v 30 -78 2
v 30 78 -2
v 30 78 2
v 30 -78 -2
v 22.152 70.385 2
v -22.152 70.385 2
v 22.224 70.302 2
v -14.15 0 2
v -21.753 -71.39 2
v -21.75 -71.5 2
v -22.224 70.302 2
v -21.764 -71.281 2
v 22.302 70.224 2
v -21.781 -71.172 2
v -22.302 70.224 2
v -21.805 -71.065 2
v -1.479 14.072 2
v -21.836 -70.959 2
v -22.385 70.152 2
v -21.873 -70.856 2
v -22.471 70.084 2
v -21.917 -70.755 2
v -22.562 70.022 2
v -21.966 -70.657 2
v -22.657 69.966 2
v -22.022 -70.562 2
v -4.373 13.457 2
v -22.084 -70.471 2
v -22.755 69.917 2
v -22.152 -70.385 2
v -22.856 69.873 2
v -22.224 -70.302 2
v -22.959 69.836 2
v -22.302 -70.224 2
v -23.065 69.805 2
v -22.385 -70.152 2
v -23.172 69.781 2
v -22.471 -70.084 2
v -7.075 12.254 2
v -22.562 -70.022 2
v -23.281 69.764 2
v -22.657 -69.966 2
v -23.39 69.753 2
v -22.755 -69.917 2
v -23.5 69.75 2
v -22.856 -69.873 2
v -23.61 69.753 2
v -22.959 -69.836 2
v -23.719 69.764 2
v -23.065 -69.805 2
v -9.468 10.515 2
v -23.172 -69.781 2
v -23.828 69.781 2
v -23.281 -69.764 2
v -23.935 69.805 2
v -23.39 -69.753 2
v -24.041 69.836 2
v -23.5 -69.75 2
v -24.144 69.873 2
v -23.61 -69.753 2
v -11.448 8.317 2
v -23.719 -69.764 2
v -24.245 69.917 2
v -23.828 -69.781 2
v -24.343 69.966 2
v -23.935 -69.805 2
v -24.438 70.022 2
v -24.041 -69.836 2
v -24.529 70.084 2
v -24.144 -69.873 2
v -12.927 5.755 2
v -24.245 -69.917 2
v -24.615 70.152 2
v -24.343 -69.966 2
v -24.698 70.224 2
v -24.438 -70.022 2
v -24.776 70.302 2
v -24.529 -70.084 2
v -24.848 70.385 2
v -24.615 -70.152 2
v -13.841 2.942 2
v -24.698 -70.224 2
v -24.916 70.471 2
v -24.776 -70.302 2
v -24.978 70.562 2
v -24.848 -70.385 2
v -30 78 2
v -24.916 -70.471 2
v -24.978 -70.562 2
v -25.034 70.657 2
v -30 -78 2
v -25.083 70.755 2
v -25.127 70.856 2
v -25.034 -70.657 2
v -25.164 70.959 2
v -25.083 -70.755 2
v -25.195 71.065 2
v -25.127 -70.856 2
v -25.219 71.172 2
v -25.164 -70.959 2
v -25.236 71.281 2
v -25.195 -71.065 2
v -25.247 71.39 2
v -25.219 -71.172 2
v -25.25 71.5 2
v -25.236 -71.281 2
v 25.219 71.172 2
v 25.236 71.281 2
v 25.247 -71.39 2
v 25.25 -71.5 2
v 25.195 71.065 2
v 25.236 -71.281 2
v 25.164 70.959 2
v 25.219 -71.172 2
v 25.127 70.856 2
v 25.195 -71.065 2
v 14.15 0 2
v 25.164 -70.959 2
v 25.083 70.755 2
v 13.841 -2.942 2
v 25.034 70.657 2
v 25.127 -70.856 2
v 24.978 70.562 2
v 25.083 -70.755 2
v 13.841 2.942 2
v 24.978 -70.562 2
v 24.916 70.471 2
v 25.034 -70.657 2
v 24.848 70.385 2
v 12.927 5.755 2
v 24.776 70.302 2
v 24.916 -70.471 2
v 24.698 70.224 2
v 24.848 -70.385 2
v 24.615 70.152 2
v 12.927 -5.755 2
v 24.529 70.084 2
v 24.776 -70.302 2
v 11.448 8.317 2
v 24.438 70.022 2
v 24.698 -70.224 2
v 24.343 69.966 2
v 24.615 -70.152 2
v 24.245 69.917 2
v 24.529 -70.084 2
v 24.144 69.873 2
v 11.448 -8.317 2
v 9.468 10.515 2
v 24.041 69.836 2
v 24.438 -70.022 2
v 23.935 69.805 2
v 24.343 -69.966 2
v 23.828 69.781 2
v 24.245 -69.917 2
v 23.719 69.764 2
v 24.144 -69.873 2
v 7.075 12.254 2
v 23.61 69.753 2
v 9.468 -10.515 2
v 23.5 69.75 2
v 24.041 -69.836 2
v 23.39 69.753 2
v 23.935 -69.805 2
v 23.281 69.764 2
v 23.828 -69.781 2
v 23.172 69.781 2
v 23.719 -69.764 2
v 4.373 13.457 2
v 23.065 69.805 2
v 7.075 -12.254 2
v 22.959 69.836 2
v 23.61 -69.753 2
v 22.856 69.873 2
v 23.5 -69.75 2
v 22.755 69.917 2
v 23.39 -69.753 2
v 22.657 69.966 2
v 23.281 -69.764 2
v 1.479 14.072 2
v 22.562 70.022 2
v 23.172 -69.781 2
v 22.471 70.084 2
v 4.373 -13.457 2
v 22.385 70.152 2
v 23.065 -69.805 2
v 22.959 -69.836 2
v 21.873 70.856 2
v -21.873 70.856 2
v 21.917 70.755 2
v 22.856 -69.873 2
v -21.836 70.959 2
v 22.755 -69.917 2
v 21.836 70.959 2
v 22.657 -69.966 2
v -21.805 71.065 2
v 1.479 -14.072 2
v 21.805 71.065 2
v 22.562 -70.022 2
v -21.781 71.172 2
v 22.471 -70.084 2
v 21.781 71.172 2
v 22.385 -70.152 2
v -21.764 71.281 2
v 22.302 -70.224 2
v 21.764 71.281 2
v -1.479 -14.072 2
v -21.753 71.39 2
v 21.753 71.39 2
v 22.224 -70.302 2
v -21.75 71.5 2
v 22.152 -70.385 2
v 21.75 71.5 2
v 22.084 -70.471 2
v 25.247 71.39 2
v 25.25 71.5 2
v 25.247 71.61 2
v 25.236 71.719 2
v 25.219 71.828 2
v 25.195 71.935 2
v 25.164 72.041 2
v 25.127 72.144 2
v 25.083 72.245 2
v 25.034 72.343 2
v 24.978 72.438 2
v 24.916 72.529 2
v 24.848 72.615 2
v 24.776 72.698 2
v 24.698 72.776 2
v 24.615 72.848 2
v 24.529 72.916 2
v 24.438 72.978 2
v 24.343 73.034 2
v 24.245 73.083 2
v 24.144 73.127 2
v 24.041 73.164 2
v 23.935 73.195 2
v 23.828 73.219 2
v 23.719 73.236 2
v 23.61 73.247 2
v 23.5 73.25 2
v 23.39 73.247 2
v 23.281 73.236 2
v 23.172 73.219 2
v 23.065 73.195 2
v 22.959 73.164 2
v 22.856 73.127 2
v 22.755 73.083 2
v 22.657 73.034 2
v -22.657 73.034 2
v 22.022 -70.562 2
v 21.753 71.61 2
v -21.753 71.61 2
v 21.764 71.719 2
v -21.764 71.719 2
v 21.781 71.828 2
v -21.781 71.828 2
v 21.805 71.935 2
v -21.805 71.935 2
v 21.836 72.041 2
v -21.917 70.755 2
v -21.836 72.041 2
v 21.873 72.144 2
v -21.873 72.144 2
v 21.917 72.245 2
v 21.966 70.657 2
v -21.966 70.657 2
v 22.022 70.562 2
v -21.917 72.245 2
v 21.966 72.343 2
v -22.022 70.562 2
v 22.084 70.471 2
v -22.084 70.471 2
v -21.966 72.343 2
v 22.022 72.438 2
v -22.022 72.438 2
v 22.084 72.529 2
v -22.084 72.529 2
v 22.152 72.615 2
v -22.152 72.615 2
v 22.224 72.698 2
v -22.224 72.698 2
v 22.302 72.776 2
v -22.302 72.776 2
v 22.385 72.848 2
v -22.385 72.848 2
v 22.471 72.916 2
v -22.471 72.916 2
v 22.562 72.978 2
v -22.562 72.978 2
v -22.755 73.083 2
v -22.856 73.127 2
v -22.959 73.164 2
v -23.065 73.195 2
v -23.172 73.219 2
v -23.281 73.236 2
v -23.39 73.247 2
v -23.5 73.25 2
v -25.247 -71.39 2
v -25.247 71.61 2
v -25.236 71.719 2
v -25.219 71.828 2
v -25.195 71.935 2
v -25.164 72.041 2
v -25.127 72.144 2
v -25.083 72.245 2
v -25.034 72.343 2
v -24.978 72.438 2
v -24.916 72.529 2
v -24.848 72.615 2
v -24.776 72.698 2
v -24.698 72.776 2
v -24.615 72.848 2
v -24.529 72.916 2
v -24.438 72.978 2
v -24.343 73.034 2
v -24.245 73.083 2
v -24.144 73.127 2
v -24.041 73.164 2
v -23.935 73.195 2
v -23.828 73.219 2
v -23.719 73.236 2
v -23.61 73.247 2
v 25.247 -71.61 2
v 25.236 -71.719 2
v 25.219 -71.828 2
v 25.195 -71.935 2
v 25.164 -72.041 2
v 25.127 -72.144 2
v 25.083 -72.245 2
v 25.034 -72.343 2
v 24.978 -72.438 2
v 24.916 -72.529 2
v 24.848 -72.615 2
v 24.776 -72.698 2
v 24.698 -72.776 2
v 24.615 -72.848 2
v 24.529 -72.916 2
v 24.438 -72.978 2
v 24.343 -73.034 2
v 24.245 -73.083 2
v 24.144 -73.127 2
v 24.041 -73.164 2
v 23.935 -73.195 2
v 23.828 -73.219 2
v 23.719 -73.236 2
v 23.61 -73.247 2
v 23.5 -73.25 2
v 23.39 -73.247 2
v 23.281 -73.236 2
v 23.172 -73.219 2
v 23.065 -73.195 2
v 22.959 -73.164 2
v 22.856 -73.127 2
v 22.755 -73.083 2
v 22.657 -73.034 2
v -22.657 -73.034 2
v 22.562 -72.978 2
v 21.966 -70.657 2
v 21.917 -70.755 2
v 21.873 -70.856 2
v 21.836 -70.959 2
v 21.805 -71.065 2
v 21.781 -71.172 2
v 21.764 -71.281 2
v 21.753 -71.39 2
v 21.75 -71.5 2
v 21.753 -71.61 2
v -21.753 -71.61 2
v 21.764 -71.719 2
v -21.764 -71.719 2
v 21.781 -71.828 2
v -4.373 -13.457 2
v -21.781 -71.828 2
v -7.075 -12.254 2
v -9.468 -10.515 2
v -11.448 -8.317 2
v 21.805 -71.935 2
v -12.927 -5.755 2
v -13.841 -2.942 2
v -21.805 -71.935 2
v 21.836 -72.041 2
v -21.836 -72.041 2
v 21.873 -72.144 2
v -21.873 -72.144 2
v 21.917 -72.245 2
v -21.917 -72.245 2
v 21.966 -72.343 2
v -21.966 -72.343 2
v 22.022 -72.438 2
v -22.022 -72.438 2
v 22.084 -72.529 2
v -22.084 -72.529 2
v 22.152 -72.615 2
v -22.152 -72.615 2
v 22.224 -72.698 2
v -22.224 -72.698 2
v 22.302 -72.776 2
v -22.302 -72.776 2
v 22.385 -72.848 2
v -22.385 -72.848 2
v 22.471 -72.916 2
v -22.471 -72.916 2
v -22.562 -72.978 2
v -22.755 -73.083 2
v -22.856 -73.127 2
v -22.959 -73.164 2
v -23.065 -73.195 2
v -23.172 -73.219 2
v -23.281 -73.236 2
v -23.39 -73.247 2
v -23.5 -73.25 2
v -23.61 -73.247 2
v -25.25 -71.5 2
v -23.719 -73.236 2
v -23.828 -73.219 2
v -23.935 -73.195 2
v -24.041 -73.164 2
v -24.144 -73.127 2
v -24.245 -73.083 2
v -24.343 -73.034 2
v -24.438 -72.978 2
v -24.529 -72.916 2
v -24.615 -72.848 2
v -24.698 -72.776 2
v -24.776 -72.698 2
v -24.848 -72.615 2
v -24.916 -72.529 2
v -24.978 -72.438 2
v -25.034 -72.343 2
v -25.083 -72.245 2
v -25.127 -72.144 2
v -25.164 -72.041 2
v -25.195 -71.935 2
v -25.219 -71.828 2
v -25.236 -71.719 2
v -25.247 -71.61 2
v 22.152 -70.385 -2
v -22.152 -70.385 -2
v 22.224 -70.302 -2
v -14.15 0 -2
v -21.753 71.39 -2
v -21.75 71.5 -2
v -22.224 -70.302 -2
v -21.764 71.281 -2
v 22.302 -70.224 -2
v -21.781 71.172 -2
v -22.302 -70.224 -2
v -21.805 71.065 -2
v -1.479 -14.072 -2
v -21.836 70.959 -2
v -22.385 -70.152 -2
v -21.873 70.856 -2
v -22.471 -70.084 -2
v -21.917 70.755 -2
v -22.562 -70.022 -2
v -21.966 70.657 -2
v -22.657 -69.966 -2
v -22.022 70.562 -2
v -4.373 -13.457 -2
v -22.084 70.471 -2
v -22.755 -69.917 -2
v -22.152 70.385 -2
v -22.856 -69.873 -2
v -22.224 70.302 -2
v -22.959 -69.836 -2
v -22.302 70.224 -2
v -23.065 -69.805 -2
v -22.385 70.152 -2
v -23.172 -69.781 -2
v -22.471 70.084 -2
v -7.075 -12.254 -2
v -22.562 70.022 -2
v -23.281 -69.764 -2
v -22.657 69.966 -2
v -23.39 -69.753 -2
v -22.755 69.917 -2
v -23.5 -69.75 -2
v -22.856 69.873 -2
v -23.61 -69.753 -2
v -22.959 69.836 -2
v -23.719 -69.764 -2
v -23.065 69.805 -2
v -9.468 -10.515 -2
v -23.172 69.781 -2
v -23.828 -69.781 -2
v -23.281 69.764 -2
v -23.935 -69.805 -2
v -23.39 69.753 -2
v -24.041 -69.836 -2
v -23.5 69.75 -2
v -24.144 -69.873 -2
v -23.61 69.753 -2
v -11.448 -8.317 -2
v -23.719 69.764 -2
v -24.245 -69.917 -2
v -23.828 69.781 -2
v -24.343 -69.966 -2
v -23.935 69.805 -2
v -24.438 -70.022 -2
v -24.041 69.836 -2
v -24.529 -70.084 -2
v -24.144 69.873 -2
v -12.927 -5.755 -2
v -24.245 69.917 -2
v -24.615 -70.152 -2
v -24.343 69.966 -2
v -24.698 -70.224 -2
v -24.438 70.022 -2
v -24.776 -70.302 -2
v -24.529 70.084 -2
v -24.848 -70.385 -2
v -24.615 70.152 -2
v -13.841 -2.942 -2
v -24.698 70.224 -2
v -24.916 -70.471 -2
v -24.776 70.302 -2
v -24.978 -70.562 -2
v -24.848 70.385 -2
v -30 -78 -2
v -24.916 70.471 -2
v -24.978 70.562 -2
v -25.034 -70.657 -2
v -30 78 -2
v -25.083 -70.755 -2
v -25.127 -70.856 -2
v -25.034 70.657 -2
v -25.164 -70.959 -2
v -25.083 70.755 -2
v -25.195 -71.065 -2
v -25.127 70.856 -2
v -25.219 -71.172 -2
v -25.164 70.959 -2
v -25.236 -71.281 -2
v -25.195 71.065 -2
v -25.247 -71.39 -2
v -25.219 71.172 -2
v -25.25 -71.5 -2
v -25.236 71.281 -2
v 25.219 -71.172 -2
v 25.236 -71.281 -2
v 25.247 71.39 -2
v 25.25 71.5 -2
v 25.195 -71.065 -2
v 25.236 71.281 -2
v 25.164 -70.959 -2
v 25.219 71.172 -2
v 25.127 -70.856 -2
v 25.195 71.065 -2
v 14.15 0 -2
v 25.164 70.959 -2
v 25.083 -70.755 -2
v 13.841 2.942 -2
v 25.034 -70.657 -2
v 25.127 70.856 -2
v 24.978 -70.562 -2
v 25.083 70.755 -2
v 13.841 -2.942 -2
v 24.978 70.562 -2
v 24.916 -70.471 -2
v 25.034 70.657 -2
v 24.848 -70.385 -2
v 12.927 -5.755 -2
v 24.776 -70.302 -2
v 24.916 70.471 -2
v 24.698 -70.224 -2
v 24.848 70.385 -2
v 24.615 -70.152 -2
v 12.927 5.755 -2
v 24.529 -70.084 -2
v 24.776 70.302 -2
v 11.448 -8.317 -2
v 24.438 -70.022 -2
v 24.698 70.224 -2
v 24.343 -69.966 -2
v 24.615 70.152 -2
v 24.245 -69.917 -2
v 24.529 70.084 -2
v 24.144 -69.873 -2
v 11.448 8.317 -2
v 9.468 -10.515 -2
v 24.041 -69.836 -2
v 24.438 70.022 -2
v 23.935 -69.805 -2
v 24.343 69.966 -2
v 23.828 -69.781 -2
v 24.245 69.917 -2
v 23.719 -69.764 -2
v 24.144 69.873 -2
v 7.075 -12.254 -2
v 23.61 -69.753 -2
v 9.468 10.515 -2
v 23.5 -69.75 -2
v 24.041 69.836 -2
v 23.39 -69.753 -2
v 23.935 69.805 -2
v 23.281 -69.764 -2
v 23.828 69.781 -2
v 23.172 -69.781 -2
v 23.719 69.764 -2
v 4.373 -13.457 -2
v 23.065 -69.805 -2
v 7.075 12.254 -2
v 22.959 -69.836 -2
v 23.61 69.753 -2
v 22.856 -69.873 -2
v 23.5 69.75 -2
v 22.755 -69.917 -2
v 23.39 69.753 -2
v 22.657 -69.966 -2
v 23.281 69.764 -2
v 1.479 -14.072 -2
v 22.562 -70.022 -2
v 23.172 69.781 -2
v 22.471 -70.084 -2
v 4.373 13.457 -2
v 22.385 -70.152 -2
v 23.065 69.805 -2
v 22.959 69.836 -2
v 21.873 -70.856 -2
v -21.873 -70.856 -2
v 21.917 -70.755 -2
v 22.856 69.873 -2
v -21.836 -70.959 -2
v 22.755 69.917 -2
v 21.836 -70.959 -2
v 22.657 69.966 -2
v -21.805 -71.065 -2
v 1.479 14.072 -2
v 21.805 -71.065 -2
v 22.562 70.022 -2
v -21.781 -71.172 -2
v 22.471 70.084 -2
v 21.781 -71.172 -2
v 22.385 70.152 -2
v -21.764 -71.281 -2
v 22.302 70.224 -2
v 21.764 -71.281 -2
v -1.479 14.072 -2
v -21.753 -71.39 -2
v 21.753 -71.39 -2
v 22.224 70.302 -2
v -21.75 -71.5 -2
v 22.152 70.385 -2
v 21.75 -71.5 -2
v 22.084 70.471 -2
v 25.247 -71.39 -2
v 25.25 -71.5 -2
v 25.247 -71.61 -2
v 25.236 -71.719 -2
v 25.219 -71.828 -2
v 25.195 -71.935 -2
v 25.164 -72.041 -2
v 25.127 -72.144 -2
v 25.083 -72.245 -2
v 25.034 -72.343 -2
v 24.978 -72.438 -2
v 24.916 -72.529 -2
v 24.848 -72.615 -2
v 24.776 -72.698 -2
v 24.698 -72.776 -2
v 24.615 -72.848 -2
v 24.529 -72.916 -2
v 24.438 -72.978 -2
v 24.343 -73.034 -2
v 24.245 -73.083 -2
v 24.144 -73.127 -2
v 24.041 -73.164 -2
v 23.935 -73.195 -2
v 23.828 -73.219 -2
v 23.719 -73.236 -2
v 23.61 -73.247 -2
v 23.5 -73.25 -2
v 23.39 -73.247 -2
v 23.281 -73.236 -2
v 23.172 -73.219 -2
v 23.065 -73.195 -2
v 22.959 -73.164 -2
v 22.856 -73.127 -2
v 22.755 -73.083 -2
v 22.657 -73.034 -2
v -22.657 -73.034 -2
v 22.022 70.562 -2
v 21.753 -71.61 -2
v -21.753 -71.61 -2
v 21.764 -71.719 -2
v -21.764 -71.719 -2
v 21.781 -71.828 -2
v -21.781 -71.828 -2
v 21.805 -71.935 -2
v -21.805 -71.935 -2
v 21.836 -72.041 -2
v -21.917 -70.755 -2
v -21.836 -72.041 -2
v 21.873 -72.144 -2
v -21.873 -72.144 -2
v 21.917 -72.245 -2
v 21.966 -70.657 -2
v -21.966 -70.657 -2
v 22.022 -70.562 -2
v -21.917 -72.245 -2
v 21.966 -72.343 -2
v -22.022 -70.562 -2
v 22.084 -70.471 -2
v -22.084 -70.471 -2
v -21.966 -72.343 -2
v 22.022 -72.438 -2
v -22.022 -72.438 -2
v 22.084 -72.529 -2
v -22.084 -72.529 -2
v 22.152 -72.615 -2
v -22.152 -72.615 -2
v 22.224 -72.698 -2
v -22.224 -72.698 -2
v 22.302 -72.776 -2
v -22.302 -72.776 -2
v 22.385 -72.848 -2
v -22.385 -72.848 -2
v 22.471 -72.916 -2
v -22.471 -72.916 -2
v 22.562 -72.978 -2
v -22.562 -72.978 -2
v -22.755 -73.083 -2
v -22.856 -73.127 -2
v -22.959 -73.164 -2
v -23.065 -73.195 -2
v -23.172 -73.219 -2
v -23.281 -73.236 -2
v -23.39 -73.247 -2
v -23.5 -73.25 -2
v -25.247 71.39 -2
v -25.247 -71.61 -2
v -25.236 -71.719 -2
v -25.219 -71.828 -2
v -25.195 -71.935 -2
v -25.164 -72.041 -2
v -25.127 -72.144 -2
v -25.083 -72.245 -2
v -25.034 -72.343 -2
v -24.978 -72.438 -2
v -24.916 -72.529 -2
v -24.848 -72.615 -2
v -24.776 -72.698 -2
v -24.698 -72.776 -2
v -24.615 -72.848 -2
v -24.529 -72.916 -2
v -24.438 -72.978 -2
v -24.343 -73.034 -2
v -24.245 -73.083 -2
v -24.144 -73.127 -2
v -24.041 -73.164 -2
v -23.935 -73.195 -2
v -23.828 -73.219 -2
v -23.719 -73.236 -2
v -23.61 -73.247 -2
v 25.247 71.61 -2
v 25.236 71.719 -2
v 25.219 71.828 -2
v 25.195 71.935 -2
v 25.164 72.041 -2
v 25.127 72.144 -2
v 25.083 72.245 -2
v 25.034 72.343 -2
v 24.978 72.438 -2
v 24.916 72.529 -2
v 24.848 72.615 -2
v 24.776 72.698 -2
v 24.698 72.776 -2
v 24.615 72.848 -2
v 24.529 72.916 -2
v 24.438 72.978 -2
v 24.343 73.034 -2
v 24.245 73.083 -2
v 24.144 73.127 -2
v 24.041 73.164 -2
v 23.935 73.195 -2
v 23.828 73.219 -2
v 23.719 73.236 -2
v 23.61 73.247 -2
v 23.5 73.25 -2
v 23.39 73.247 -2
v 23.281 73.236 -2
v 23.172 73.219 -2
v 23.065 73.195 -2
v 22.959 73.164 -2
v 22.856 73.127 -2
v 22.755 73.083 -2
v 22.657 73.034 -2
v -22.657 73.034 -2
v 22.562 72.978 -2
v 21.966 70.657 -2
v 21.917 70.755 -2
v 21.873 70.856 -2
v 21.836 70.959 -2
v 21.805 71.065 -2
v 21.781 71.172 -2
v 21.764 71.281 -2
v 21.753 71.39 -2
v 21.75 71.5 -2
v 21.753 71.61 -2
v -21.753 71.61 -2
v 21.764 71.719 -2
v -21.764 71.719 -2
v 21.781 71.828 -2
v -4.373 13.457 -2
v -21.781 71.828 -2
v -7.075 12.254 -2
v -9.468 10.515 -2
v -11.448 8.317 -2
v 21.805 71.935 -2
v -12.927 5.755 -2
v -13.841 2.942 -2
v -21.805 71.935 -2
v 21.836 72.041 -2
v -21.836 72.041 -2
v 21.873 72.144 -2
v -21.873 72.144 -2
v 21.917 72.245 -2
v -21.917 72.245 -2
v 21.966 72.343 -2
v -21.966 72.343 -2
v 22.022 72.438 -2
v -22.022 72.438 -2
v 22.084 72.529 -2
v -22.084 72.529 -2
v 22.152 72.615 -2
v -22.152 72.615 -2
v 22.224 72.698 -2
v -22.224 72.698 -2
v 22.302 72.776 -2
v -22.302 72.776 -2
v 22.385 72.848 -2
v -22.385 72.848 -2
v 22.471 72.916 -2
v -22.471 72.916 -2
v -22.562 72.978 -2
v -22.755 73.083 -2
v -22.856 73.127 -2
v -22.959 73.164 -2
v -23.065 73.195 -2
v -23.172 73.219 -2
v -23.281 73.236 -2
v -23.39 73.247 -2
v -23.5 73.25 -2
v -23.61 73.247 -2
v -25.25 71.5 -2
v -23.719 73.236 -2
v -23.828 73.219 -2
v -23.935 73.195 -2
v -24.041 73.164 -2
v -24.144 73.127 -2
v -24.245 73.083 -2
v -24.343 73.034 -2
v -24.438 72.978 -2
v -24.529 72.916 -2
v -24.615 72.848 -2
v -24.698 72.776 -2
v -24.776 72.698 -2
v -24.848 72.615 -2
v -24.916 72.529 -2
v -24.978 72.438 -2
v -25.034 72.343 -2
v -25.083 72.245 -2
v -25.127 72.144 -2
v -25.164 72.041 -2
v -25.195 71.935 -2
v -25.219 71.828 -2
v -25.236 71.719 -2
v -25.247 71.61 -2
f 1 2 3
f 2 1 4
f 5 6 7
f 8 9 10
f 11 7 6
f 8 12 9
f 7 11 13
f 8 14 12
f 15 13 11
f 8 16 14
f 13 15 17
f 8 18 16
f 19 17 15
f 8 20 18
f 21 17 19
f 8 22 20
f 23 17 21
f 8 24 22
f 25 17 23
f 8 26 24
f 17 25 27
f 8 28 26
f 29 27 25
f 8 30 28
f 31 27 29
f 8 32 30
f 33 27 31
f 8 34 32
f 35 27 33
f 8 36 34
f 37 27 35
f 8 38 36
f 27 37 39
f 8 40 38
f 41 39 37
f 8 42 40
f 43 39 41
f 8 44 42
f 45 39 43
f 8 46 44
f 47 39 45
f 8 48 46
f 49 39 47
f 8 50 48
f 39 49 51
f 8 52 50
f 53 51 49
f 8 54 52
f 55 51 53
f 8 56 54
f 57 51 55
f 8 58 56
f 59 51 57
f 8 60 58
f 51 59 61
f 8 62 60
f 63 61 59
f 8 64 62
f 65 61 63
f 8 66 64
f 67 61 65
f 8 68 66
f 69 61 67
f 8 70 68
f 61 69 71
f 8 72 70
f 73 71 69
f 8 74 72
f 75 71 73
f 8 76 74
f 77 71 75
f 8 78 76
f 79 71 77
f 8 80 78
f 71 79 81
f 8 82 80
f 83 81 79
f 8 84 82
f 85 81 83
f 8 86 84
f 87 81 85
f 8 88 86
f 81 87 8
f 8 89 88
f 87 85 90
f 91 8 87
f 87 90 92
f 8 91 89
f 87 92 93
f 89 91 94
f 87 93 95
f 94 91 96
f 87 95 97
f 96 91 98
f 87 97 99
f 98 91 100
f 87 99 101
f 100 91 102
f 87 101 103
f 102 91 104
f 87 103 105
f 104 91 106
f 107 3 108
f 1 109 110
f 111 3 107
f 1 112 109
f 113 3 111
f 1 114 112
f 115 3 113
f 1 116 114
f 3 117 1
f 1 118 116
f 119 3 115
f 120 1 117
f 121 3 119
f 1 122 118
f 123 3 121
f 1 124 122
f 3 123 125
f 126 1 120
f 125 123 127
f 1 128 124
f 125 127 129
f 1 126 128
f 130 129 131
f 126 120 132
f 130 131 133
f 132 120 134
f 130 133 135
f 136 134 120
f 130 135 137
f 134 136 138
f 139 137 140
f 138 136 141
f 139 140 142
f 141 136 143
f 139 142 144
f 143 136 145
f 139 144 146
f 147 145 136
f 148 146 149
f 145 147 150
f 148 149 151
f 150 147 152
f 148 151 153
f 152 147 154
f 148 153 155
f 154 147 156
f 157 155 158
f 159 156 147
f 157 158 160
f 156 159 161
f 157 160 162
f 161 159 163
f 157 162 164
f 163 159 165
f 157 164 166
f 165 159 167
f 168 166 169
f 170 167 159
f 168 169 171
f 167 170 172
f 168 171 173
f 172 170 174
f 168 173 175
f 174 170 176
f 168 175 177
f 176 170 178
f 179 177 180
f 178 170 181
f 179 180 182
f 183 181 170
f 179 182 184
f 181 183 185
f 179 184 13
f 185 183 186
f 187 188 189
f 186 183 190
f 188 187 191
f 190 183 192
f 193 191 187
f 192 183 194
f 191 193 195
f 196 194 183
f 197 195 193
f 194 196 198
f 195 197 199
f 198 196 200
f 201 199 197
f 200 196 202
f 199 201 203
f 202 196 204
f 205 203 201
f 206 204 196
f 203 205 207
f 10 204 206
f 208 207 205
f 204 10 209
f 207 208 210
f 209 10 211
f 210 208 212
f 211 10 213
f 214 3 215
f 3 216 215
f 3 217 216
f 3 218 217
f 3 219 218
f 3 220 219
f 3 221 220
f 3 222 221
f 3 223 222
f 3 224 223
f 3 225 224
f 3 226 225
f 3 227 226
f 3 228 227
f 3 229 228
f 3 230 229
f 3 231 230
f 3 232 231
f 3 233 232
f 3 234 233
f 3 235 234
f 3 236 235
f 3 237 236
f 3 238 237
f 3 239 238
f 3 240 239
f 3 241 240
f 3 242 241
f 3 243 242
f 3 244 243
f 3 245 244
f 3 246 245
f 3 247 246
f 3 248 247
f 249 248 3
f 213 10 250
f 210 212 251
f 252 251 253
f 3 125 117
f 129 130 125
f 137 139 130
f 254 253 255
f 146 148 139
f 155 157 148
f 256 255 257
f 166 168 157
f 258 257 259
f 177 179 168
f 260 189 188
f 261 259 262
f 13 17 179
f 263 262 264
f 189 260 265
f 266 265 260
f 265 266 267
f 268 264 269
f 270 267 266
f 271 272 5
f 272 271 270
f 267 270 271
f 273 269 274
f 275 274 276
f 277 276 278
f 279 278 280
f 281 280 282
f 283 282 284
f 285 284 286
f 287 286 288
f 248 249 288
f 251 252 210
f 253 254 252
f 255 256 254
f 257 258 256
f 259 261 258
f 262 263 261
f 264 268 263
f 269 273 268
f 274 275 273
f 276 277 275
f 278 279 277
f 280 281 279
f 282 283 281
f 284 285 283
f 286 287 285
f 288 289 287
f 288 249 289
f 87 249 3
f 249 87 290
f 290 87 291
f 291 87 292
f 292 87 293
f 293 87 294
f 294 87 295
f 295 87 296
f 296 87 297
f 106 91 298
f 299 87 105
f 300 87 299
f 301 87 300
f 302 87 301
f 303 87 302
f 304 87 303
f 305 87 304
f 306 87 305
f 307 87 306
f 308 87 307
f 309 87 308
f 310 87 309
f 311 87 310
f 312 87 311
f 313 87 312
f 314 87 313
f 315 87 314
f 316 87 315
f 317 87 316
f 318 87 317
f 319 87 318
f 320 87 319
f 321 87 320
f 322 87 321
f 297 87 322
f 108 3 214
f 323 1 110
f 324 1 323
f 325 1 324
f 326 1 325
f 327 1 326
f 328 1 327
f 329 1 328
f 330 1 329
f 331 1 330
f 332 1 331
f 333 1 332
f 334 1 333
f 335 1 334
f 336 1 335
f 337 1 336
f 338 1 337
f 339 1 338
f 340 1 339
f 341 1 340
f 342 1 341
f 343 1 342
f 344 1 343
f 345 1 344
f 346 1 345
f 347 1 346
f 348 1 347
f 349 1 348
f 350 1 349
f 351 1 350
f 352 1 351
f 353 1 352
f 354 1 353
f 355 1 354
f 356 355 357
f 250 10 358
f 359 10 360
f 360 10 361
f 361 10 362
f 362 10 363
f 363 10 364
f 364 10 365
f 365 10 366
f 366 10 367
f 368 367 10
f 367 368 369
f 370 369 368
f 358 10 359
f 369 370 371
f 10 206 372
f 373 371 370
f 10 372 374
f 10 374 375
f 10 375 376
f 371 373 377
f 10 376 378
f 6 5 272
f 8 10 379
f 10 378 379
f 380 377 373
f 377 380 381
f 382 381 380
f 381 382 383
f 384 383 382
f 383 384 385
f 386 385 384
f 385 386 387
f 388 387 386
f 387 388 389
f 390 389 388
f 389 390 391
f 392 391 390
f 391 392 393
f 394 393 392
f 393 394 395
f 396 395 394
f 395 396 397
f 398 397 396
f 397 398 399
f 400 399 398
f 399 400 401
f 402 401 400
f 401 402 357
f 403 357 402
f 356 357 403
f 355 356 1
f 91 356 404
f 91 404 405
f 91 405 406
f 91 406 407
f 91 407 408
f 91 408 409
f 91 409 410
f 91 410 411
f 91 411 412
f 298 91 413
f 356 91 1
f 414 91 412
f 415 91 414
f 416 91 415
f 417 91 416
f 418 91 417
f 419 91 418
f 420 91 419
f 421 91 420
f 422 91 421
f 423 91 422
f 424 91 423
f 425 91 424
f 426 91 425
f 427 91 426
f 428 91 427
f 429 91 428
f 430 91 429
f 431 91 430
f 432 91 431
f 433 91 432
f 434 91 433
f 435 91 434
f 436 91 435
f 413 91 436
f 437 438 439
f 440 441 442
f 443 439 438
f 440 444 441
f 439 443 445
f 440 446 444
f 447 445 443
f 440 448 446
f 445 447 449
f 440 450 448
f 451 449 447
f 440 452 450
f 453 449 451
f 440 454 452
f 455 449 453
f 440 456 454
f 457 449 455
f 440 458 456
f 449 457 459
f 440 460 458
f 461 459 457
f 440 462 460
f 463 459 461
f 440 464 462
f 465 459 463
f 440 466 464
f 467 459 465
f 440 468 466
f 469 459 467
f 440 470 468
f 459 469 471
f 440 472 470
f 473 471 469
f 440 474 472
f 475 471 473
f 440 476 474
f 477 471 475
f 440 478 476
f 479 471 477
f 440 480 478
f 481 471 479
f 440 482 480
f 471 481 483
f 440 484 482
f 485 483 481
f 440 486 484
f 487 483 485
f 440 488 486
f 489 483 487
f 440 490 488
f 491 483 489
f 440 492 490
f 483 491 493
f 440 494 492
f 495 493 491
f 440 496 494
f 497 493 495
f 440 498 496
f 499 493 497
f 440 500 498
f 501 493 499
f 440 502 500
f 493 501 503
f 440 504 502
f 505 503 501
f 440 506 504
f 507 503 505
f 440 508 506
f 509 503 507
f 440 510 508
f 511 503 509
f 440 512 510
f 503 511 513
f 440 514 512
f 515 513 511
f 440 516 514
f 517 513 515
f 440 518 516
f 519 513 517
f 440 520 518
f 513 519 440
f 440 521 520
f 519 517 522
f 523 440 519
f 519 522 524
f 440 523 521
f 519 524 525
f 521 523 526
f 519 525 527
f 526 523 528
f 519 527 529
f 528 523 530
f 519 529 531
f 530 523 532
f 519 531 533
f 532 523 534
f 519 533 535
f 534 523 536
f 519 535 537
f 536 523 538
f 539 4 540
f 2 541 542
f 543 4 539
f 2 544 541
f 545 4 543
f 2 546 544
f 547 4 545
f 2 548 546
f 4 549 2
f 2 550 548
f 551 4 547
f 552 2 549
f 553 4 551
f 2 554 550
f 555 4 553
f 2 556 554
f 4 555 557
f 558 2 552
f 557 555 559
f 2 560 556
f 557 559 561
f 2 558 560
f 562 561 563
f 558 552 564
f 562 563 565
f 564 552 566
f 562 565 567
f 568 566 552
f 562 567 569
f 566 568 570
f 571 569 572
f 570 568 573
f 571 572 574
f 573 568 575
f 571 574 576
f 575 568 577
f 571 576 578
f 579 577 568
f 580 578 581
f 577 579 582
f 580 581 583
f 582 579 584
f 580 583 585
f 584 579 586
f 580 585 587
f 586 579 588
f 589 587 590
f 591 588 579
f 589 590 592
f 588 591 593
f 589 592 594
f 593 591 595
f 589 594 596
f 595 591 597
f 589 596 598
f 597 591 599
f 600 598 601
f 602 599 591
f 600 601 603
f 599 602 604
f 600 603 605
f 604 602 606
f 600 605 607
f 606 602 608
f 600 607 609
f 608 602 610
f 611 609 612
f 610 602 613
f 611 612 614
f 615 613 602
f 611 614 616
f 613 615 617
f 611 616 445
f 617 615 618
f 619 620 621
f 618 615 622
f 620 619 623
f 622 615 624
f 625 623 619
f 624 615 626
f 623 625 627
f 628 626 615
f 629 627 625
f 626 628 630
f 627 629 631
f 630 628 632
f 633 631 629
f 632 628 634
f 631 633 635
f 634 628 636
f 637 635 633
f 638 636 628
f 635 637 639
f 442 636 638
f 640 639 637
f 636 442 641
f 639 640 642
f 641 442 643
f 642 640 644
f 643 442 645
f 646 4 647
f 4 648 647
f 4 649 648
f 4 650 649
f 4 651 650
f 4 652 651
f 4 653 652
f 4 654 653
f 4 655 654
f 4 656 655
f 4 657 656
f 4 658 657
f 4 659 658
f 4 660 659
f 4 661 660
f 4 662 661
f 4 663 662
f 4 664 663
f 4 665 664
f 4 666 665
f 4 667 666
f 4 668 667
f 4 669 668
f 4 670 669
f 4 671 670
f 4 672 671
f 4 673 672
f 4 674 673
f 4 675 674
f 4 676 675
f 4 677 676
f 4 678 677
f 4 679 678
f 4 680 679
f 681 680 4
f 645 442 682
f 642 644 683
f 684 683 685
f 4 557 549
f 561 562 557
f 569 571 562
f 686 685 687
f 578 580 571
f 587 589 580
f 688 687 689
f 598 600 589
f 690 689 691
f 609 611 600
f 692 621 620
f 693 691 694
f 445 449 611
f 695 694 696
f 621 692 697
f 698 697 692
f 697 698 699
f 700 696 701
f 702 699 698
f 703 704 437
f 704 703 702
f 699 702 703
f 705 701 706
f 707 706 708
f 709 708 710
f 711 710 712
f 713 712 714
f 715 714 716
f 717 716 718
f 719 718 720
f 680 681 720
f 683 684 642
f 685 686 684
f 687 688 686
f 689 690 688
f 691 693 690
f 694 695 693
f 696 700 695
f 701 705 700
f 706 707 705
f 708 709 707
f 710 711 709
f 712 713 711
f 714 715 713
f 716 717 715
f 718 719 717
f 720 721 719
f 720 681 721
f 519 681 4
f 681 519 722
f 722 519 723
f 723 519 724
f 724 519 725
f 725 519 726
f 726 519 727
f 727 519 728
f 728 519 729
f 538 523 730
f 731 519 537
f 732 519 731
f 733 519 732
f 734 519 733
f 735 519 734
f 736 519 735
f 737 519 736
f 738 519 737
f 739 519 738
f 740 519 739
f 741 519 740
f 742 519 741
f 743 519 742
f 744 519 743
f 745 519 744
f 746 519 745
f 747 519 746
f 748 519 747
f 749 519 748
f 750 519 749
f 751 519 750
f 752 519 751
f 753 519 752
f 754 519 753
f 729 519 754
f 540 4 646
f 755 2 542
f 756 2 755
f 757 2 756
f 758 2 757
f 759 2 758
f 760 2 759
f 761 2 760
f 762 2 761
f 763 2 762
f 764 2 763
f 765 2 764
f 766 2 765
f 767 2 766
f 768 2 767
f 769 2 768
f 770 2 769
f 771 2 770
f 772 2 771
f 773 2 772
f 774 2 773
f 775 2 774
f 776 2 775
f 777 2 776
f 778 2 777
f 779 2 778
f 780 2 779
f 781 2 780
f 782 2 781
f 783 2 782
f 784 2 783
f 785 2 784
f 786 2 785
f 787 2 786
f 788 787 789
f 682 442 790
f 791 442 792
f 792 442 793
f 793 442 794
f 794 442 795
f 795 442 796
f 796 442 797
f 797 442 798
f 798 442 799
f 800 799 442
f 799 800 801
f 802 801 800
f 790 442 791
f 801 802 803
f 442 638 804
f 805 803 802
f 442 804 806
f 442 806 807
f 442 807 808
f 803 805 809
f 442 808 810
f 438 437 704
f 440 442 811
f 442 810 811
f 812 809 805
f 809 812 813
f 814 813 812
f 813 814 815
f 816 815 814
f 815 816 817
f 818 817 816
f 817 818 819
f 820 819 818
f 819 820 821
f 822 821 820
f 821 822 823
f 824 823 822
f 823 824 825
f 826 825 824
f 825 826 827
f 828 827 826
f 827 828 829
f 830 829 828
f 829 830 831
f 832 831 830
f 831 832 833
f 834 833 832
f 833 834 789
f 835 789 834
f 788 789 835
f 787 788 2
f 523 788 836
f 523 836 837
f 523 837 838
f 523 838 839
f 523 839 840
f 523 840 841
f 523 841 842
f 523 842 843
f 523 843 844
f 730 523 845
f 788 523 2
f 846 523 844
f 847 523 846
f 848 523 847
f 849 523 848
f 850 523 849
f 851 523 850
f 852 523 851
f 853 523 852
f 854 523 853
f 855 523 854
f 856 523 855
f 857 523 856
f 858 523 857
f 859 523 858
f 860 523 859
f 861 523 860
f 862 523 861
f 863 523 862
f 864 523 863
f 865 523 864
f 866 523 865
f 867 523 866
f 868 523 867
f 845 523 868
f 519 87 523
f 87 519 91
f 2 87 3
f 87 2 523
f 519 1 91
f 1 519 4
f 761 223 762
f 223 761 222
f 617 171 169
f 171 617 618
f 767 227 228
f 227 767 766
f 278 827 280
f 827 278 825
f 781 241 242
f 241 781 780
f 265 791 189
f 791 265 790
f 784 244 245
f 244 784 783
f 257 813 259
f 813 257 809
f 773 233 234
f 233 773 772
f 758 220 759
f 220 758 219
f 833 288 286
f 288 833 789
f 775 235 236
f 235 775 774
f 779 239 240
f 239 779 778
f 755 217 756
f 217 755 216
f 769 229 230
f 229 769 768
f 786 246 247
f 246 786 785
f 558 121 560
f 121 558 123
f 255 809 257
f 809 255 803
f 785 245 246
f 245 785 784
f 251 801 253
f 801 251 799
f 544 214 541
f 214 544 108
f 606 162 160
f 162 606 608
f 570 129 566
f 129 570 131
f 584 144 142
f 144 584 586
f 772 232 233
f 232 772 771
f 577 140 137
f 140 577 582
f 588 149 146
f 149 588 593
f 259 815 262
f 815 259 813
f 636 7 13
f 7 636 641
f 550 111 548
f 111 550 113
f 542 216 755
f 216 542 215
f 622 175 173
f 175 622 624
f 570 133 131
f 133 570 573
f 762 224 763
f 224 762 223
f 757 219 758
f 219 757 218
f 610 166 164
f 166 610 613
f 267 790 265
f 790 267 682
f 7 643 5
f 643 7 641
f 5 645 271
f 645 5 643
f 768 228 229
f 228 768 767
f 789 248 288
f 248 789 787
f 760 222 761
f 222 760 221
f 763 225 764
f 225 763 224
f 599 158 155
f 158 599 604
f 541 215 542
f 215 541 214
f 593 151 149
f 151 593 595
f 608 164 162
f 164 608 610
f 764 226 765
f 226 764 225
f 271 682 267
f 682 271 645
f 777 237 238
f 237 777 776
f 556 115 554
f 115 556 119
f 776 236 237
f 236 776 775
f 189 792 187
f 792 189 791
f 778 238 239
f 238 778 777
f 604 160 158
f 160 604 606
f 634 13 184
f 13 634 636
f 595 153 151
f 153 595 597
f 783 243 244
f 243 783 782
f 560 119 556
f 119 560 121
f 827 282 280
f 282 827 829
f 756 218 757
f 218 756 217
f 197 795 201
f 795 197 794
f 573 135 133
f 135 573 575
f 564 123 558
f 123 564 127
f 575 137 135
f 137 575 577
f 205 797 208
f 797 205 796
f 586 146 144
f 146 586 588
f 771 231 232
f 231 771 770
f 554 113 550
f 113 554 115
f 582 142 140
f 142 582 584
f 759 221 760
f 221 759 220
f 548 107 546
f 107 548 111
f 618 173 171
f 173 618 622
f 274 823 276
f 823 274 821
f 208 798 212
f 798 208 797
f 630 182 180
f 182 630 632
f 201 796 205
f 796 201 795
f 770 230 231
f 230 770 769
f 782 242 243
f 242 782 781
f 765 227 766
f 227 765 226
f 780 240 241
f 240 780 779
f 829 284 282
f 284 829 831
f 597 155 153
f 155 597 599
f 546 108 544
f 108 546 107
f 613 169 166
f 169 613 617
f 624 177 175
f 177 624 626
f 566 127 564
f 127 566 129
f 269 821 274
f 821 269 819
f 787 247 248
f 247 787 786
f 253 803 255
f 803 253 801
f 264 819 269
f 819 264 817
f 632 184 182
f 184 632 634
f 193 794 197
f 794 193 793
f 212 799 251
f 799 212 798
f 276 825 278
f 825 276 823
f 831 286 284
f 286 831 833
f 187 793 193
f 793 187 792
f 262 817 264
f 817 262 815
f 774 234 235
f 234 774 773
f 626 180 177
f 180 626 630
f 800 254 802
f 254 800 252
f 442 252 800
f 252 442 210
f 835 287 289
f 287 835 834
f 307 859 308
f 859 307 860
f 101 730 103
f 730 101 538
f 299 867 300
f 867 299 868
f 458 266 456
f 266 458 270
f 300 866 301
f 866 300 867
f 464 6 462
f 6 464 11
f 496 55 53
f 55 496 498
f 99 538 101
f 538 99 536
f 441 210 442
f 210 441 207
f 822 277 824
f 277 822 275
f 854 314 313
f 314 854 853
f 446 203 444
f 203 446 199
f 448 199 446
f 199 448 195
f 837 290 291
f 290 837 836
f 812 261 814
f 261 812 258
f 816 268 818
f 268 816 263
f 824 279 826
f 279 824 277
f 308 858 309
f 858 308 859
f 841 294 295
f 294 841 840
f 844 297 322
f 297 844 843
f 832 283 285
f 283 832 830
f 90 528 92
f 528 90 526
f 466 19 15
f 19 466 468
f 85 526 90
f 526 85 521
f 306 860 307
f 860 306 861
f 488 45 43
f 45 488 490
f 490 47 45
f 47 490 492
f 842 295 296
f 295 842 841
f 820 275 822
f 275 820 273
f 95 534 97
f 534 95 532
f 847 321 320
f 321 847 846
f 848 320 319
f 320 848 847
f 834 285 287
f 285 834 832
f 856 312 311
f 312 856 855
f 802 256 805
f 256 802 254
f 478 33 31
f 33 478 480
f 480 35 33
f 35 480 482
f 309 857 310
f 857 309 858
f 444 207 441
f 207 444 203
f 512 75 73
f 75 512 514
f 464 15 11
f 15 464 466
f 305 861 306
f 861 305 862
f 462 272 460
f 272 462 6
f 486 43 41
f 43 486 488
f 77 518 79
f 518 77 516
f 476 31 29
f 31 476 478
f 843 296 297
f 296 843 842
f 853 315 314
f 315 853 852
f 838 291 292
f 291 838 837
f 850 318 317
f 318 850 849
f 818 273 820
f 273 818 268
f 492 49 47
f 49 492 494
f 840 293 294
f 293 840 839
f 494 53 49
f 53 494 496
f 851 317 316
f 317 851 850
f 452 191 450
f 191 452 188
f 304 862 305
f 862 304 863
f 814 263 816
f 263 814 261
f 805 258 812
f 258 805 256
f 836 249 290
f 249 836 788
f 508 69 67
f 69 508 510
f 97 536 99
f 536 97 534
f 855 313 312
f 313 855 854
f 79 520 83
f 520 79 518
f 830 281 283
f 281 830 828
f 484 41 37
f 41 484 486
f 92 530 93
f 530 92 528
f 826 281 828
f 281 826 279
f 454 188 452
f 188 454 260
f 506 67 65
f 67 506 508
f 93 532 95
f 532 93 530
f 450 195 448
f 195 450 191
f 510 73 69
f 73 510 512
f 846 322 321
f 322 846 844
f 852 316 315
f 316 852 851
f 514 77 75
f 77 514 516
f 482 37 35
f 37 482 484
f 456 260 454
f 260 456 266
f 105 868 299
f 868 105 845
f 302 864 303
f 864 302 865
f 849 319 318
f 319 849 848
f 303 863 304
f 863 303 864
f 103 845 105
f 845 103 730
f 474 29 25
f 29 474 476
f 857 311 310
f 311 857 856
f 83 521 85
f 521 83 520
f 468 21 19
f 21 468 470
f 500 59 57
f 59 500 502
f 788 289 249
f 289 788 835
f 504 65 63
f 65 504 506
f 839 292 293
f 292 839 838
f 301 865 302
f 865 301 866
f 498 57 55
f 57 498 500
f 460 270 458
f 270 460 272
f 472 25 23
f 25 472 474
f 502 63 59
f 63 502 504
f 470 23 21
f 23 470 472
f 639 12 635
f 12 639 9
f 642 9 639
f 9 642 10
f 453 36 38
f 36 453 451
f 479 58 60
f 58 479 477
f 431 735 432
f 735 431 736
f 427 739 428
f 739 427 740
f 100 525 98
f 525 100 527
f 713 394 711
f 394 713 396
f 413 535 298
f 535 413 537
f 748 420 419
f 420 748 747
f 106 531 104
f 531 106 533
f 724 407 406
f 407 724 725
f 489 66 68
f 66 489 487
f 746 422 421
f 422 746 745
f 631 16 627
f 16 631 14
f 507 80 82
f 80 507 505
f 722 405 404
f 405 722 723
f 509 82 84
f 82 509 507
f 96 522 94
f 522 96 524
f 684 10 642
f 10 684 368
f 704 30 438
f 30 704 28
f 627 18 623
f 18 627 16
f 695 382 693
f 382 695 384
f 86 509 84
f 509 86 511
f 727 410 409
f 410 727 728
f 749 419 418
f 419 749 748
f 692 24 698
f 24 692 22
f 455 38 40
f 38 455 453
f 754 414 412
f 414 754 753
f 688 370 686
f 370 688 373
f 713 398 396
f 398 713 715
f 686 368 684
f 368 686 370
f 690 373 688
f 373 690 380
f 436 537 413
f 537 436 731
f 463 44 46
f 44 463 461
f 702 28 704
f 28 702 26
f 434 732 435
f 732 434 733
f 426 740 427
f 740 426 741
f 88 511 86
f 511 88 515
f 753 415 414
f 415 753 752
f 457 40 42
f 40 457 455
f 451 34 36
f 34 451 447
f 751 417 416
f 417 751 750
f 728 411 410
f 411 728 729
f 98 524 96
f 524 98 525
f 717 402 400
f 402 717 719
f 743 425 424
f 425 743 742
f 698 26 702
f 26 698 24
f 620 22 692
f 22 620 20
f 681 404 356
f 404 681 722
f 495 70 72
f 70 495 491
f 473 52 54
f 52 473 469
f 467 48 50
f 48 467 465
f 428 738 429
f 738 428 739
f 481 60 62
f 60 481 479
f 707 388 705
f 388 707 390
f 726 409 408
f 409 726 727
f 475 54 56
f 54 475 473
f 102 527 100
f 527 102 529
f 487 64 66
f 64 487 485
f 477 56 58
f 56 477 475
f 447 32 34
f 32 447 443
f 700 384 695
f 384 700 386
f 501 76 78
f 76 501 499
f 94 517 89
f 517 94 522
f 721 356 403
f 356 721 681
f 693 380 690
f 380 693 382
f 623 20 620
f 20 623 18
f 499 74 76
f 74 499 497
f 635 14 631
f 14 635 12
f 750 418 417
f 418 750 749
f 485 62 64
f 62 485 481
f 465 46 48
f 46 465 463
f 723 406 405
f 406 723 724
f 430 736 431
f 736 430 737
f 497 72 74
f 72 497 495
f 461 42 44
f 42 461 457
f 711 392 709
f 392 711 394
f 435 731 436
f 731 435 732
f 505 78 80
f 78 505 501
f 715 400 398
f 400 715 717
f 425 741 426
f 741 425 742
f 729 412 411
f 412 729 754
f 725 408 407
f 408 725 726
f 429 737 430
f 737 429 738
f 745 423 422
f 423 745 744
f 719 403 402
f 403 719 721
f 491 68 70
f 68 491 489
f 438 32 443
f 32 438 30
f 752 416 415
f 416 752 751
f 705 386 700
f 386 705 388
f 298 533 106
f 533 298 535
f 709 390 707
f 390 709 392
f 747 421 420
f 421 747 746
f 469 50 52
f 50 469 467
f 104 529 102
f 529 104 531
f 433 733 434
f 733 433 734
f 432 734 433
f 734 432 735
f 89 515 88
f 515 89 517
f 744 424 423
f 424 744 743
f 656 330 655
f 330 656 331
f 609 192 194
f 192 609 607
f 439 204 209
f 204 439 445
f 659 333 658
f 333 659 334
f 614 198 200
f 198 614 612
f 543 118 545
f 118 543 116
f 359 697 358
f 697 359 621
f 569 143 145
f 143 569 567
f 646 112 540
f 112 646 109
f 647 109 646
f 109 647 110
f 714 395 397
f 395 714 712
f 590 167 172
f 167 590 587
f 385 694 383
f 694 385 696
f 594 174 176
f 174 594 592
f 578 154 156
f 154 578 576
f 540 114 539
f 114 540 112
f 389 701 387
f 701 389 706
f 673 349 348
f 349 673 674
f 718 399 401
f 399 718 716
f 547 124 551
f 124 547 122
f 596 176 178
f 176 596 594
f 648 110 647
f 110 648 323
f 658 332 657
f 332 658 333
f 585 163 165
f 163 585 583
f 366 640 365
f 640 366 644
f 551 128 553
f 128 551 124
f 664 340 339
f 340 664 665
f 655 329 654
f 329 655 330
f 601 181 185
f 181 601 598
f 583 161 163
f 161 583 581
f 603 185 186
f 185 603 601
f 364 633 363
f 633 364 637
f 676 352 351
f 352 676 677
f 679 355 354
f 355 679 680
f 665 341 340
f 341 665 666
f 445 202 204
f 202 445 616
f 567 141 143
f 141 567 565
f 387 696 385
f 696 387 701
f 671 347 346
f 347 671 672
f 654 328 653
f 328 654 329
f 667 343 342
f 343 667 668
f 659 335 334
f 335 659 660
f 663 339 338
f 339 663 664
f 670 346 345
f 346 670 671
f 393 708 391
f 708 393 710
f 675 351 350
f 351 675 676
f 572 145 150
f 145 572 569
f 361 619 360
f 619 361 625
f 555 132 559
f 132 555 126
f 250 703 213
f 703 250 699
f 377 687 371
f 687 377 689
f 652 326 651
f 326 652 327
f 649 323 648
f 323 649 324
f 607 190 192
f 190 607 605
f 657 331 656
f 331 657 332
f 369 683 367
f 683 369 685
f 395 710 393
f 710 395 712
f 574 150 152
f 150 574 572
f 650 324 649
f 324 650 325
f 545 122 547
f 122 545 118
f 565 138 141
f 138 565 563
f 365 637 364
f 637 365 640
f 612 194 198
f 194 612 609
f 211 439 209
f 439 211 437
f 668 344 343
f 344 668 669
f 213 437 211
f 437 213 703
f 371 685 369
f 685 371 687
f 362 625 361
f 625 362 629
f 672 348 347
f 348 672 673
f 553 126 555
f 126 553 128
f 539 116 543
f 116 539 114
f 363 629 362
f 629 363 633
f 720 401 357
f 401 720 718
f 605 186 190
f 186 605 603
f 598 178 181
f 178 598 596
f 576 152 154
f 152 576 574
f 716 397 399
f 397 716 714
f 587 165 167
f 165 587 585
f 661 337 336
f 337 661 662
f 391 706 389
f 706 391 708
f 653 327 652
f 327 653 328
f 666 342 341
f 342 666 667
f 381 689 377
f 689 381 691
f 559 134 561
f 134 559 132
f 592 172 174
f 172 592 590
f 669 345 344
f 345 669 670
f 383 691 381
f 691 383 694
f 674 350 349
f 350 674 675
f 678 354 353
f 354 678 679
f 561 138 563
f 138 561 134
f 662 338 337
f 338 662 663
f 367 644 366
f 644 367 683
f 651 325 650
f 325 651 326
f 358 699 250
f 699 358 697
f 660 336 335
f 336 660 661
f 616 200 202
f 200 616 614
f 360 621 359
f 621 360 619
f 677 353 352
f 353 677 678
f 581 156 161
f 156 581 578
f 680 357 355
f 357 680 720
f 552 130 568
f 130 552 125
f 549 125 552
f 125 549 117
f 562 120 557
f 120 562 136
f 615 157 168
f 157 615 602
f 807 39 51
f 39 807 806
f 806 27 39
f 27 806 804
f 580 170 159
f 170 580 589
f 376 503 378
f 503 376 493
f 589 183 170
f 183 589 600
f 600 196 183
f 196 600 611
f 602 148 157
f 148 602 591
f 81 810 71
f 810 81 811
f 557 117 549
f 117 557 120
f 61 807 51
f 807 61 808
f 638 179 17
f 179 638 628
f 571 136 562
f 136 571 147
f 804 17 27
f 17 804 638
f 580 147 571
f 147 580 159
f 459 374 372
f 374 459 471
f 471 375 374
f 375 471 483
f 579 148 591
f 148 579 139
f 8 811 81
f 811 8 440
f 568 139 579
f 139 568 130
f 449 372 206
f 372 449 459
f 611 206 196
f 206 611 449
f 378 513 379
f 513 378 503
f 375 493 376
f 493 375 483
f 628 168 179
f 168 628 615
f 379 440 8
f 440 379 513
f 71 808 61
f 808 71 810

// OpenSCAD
width = 60;
height = 156;
thickness = 4;

difference() {
    cube([width, height, thickness], center = true);

   // SCREW HOLES
   screw_hole = 3.5/2;
   dist_boarder = 6.5;

   color([1,0,0])
      translate([(width/2-dist_boarder),(height/2-dist_boarder), 0])
         cylinder(h= height+1, r = screw_hole, center = true, $fn=100);

   color([1,0,0])
      translate([(width/2-dist_boarder)*-1,(height/2-dist_boarder), 0])
         cylinder(h= height+1, r = screw_hole, center = true, $fn=100);

   color([1,0,0])
      translate([(width/2-dist_boarder)*-1,(height/2-dist_boarder)*-1, 0])
         cylinder(h= height+1, r = screw_hole, center = true, $fn=100);

   color([1,0,0])
      translate([(width/2-dist_boarder),(height/2-dist_boarder)*-1, 0])
         cylinder(h= height+1, r = screw_hole, center = true, $fn=100);


    // BUTTON HOLE
    button_hole = 28.3;
    cylinder(r=button_hole/2, h=10, center=true);   
}
